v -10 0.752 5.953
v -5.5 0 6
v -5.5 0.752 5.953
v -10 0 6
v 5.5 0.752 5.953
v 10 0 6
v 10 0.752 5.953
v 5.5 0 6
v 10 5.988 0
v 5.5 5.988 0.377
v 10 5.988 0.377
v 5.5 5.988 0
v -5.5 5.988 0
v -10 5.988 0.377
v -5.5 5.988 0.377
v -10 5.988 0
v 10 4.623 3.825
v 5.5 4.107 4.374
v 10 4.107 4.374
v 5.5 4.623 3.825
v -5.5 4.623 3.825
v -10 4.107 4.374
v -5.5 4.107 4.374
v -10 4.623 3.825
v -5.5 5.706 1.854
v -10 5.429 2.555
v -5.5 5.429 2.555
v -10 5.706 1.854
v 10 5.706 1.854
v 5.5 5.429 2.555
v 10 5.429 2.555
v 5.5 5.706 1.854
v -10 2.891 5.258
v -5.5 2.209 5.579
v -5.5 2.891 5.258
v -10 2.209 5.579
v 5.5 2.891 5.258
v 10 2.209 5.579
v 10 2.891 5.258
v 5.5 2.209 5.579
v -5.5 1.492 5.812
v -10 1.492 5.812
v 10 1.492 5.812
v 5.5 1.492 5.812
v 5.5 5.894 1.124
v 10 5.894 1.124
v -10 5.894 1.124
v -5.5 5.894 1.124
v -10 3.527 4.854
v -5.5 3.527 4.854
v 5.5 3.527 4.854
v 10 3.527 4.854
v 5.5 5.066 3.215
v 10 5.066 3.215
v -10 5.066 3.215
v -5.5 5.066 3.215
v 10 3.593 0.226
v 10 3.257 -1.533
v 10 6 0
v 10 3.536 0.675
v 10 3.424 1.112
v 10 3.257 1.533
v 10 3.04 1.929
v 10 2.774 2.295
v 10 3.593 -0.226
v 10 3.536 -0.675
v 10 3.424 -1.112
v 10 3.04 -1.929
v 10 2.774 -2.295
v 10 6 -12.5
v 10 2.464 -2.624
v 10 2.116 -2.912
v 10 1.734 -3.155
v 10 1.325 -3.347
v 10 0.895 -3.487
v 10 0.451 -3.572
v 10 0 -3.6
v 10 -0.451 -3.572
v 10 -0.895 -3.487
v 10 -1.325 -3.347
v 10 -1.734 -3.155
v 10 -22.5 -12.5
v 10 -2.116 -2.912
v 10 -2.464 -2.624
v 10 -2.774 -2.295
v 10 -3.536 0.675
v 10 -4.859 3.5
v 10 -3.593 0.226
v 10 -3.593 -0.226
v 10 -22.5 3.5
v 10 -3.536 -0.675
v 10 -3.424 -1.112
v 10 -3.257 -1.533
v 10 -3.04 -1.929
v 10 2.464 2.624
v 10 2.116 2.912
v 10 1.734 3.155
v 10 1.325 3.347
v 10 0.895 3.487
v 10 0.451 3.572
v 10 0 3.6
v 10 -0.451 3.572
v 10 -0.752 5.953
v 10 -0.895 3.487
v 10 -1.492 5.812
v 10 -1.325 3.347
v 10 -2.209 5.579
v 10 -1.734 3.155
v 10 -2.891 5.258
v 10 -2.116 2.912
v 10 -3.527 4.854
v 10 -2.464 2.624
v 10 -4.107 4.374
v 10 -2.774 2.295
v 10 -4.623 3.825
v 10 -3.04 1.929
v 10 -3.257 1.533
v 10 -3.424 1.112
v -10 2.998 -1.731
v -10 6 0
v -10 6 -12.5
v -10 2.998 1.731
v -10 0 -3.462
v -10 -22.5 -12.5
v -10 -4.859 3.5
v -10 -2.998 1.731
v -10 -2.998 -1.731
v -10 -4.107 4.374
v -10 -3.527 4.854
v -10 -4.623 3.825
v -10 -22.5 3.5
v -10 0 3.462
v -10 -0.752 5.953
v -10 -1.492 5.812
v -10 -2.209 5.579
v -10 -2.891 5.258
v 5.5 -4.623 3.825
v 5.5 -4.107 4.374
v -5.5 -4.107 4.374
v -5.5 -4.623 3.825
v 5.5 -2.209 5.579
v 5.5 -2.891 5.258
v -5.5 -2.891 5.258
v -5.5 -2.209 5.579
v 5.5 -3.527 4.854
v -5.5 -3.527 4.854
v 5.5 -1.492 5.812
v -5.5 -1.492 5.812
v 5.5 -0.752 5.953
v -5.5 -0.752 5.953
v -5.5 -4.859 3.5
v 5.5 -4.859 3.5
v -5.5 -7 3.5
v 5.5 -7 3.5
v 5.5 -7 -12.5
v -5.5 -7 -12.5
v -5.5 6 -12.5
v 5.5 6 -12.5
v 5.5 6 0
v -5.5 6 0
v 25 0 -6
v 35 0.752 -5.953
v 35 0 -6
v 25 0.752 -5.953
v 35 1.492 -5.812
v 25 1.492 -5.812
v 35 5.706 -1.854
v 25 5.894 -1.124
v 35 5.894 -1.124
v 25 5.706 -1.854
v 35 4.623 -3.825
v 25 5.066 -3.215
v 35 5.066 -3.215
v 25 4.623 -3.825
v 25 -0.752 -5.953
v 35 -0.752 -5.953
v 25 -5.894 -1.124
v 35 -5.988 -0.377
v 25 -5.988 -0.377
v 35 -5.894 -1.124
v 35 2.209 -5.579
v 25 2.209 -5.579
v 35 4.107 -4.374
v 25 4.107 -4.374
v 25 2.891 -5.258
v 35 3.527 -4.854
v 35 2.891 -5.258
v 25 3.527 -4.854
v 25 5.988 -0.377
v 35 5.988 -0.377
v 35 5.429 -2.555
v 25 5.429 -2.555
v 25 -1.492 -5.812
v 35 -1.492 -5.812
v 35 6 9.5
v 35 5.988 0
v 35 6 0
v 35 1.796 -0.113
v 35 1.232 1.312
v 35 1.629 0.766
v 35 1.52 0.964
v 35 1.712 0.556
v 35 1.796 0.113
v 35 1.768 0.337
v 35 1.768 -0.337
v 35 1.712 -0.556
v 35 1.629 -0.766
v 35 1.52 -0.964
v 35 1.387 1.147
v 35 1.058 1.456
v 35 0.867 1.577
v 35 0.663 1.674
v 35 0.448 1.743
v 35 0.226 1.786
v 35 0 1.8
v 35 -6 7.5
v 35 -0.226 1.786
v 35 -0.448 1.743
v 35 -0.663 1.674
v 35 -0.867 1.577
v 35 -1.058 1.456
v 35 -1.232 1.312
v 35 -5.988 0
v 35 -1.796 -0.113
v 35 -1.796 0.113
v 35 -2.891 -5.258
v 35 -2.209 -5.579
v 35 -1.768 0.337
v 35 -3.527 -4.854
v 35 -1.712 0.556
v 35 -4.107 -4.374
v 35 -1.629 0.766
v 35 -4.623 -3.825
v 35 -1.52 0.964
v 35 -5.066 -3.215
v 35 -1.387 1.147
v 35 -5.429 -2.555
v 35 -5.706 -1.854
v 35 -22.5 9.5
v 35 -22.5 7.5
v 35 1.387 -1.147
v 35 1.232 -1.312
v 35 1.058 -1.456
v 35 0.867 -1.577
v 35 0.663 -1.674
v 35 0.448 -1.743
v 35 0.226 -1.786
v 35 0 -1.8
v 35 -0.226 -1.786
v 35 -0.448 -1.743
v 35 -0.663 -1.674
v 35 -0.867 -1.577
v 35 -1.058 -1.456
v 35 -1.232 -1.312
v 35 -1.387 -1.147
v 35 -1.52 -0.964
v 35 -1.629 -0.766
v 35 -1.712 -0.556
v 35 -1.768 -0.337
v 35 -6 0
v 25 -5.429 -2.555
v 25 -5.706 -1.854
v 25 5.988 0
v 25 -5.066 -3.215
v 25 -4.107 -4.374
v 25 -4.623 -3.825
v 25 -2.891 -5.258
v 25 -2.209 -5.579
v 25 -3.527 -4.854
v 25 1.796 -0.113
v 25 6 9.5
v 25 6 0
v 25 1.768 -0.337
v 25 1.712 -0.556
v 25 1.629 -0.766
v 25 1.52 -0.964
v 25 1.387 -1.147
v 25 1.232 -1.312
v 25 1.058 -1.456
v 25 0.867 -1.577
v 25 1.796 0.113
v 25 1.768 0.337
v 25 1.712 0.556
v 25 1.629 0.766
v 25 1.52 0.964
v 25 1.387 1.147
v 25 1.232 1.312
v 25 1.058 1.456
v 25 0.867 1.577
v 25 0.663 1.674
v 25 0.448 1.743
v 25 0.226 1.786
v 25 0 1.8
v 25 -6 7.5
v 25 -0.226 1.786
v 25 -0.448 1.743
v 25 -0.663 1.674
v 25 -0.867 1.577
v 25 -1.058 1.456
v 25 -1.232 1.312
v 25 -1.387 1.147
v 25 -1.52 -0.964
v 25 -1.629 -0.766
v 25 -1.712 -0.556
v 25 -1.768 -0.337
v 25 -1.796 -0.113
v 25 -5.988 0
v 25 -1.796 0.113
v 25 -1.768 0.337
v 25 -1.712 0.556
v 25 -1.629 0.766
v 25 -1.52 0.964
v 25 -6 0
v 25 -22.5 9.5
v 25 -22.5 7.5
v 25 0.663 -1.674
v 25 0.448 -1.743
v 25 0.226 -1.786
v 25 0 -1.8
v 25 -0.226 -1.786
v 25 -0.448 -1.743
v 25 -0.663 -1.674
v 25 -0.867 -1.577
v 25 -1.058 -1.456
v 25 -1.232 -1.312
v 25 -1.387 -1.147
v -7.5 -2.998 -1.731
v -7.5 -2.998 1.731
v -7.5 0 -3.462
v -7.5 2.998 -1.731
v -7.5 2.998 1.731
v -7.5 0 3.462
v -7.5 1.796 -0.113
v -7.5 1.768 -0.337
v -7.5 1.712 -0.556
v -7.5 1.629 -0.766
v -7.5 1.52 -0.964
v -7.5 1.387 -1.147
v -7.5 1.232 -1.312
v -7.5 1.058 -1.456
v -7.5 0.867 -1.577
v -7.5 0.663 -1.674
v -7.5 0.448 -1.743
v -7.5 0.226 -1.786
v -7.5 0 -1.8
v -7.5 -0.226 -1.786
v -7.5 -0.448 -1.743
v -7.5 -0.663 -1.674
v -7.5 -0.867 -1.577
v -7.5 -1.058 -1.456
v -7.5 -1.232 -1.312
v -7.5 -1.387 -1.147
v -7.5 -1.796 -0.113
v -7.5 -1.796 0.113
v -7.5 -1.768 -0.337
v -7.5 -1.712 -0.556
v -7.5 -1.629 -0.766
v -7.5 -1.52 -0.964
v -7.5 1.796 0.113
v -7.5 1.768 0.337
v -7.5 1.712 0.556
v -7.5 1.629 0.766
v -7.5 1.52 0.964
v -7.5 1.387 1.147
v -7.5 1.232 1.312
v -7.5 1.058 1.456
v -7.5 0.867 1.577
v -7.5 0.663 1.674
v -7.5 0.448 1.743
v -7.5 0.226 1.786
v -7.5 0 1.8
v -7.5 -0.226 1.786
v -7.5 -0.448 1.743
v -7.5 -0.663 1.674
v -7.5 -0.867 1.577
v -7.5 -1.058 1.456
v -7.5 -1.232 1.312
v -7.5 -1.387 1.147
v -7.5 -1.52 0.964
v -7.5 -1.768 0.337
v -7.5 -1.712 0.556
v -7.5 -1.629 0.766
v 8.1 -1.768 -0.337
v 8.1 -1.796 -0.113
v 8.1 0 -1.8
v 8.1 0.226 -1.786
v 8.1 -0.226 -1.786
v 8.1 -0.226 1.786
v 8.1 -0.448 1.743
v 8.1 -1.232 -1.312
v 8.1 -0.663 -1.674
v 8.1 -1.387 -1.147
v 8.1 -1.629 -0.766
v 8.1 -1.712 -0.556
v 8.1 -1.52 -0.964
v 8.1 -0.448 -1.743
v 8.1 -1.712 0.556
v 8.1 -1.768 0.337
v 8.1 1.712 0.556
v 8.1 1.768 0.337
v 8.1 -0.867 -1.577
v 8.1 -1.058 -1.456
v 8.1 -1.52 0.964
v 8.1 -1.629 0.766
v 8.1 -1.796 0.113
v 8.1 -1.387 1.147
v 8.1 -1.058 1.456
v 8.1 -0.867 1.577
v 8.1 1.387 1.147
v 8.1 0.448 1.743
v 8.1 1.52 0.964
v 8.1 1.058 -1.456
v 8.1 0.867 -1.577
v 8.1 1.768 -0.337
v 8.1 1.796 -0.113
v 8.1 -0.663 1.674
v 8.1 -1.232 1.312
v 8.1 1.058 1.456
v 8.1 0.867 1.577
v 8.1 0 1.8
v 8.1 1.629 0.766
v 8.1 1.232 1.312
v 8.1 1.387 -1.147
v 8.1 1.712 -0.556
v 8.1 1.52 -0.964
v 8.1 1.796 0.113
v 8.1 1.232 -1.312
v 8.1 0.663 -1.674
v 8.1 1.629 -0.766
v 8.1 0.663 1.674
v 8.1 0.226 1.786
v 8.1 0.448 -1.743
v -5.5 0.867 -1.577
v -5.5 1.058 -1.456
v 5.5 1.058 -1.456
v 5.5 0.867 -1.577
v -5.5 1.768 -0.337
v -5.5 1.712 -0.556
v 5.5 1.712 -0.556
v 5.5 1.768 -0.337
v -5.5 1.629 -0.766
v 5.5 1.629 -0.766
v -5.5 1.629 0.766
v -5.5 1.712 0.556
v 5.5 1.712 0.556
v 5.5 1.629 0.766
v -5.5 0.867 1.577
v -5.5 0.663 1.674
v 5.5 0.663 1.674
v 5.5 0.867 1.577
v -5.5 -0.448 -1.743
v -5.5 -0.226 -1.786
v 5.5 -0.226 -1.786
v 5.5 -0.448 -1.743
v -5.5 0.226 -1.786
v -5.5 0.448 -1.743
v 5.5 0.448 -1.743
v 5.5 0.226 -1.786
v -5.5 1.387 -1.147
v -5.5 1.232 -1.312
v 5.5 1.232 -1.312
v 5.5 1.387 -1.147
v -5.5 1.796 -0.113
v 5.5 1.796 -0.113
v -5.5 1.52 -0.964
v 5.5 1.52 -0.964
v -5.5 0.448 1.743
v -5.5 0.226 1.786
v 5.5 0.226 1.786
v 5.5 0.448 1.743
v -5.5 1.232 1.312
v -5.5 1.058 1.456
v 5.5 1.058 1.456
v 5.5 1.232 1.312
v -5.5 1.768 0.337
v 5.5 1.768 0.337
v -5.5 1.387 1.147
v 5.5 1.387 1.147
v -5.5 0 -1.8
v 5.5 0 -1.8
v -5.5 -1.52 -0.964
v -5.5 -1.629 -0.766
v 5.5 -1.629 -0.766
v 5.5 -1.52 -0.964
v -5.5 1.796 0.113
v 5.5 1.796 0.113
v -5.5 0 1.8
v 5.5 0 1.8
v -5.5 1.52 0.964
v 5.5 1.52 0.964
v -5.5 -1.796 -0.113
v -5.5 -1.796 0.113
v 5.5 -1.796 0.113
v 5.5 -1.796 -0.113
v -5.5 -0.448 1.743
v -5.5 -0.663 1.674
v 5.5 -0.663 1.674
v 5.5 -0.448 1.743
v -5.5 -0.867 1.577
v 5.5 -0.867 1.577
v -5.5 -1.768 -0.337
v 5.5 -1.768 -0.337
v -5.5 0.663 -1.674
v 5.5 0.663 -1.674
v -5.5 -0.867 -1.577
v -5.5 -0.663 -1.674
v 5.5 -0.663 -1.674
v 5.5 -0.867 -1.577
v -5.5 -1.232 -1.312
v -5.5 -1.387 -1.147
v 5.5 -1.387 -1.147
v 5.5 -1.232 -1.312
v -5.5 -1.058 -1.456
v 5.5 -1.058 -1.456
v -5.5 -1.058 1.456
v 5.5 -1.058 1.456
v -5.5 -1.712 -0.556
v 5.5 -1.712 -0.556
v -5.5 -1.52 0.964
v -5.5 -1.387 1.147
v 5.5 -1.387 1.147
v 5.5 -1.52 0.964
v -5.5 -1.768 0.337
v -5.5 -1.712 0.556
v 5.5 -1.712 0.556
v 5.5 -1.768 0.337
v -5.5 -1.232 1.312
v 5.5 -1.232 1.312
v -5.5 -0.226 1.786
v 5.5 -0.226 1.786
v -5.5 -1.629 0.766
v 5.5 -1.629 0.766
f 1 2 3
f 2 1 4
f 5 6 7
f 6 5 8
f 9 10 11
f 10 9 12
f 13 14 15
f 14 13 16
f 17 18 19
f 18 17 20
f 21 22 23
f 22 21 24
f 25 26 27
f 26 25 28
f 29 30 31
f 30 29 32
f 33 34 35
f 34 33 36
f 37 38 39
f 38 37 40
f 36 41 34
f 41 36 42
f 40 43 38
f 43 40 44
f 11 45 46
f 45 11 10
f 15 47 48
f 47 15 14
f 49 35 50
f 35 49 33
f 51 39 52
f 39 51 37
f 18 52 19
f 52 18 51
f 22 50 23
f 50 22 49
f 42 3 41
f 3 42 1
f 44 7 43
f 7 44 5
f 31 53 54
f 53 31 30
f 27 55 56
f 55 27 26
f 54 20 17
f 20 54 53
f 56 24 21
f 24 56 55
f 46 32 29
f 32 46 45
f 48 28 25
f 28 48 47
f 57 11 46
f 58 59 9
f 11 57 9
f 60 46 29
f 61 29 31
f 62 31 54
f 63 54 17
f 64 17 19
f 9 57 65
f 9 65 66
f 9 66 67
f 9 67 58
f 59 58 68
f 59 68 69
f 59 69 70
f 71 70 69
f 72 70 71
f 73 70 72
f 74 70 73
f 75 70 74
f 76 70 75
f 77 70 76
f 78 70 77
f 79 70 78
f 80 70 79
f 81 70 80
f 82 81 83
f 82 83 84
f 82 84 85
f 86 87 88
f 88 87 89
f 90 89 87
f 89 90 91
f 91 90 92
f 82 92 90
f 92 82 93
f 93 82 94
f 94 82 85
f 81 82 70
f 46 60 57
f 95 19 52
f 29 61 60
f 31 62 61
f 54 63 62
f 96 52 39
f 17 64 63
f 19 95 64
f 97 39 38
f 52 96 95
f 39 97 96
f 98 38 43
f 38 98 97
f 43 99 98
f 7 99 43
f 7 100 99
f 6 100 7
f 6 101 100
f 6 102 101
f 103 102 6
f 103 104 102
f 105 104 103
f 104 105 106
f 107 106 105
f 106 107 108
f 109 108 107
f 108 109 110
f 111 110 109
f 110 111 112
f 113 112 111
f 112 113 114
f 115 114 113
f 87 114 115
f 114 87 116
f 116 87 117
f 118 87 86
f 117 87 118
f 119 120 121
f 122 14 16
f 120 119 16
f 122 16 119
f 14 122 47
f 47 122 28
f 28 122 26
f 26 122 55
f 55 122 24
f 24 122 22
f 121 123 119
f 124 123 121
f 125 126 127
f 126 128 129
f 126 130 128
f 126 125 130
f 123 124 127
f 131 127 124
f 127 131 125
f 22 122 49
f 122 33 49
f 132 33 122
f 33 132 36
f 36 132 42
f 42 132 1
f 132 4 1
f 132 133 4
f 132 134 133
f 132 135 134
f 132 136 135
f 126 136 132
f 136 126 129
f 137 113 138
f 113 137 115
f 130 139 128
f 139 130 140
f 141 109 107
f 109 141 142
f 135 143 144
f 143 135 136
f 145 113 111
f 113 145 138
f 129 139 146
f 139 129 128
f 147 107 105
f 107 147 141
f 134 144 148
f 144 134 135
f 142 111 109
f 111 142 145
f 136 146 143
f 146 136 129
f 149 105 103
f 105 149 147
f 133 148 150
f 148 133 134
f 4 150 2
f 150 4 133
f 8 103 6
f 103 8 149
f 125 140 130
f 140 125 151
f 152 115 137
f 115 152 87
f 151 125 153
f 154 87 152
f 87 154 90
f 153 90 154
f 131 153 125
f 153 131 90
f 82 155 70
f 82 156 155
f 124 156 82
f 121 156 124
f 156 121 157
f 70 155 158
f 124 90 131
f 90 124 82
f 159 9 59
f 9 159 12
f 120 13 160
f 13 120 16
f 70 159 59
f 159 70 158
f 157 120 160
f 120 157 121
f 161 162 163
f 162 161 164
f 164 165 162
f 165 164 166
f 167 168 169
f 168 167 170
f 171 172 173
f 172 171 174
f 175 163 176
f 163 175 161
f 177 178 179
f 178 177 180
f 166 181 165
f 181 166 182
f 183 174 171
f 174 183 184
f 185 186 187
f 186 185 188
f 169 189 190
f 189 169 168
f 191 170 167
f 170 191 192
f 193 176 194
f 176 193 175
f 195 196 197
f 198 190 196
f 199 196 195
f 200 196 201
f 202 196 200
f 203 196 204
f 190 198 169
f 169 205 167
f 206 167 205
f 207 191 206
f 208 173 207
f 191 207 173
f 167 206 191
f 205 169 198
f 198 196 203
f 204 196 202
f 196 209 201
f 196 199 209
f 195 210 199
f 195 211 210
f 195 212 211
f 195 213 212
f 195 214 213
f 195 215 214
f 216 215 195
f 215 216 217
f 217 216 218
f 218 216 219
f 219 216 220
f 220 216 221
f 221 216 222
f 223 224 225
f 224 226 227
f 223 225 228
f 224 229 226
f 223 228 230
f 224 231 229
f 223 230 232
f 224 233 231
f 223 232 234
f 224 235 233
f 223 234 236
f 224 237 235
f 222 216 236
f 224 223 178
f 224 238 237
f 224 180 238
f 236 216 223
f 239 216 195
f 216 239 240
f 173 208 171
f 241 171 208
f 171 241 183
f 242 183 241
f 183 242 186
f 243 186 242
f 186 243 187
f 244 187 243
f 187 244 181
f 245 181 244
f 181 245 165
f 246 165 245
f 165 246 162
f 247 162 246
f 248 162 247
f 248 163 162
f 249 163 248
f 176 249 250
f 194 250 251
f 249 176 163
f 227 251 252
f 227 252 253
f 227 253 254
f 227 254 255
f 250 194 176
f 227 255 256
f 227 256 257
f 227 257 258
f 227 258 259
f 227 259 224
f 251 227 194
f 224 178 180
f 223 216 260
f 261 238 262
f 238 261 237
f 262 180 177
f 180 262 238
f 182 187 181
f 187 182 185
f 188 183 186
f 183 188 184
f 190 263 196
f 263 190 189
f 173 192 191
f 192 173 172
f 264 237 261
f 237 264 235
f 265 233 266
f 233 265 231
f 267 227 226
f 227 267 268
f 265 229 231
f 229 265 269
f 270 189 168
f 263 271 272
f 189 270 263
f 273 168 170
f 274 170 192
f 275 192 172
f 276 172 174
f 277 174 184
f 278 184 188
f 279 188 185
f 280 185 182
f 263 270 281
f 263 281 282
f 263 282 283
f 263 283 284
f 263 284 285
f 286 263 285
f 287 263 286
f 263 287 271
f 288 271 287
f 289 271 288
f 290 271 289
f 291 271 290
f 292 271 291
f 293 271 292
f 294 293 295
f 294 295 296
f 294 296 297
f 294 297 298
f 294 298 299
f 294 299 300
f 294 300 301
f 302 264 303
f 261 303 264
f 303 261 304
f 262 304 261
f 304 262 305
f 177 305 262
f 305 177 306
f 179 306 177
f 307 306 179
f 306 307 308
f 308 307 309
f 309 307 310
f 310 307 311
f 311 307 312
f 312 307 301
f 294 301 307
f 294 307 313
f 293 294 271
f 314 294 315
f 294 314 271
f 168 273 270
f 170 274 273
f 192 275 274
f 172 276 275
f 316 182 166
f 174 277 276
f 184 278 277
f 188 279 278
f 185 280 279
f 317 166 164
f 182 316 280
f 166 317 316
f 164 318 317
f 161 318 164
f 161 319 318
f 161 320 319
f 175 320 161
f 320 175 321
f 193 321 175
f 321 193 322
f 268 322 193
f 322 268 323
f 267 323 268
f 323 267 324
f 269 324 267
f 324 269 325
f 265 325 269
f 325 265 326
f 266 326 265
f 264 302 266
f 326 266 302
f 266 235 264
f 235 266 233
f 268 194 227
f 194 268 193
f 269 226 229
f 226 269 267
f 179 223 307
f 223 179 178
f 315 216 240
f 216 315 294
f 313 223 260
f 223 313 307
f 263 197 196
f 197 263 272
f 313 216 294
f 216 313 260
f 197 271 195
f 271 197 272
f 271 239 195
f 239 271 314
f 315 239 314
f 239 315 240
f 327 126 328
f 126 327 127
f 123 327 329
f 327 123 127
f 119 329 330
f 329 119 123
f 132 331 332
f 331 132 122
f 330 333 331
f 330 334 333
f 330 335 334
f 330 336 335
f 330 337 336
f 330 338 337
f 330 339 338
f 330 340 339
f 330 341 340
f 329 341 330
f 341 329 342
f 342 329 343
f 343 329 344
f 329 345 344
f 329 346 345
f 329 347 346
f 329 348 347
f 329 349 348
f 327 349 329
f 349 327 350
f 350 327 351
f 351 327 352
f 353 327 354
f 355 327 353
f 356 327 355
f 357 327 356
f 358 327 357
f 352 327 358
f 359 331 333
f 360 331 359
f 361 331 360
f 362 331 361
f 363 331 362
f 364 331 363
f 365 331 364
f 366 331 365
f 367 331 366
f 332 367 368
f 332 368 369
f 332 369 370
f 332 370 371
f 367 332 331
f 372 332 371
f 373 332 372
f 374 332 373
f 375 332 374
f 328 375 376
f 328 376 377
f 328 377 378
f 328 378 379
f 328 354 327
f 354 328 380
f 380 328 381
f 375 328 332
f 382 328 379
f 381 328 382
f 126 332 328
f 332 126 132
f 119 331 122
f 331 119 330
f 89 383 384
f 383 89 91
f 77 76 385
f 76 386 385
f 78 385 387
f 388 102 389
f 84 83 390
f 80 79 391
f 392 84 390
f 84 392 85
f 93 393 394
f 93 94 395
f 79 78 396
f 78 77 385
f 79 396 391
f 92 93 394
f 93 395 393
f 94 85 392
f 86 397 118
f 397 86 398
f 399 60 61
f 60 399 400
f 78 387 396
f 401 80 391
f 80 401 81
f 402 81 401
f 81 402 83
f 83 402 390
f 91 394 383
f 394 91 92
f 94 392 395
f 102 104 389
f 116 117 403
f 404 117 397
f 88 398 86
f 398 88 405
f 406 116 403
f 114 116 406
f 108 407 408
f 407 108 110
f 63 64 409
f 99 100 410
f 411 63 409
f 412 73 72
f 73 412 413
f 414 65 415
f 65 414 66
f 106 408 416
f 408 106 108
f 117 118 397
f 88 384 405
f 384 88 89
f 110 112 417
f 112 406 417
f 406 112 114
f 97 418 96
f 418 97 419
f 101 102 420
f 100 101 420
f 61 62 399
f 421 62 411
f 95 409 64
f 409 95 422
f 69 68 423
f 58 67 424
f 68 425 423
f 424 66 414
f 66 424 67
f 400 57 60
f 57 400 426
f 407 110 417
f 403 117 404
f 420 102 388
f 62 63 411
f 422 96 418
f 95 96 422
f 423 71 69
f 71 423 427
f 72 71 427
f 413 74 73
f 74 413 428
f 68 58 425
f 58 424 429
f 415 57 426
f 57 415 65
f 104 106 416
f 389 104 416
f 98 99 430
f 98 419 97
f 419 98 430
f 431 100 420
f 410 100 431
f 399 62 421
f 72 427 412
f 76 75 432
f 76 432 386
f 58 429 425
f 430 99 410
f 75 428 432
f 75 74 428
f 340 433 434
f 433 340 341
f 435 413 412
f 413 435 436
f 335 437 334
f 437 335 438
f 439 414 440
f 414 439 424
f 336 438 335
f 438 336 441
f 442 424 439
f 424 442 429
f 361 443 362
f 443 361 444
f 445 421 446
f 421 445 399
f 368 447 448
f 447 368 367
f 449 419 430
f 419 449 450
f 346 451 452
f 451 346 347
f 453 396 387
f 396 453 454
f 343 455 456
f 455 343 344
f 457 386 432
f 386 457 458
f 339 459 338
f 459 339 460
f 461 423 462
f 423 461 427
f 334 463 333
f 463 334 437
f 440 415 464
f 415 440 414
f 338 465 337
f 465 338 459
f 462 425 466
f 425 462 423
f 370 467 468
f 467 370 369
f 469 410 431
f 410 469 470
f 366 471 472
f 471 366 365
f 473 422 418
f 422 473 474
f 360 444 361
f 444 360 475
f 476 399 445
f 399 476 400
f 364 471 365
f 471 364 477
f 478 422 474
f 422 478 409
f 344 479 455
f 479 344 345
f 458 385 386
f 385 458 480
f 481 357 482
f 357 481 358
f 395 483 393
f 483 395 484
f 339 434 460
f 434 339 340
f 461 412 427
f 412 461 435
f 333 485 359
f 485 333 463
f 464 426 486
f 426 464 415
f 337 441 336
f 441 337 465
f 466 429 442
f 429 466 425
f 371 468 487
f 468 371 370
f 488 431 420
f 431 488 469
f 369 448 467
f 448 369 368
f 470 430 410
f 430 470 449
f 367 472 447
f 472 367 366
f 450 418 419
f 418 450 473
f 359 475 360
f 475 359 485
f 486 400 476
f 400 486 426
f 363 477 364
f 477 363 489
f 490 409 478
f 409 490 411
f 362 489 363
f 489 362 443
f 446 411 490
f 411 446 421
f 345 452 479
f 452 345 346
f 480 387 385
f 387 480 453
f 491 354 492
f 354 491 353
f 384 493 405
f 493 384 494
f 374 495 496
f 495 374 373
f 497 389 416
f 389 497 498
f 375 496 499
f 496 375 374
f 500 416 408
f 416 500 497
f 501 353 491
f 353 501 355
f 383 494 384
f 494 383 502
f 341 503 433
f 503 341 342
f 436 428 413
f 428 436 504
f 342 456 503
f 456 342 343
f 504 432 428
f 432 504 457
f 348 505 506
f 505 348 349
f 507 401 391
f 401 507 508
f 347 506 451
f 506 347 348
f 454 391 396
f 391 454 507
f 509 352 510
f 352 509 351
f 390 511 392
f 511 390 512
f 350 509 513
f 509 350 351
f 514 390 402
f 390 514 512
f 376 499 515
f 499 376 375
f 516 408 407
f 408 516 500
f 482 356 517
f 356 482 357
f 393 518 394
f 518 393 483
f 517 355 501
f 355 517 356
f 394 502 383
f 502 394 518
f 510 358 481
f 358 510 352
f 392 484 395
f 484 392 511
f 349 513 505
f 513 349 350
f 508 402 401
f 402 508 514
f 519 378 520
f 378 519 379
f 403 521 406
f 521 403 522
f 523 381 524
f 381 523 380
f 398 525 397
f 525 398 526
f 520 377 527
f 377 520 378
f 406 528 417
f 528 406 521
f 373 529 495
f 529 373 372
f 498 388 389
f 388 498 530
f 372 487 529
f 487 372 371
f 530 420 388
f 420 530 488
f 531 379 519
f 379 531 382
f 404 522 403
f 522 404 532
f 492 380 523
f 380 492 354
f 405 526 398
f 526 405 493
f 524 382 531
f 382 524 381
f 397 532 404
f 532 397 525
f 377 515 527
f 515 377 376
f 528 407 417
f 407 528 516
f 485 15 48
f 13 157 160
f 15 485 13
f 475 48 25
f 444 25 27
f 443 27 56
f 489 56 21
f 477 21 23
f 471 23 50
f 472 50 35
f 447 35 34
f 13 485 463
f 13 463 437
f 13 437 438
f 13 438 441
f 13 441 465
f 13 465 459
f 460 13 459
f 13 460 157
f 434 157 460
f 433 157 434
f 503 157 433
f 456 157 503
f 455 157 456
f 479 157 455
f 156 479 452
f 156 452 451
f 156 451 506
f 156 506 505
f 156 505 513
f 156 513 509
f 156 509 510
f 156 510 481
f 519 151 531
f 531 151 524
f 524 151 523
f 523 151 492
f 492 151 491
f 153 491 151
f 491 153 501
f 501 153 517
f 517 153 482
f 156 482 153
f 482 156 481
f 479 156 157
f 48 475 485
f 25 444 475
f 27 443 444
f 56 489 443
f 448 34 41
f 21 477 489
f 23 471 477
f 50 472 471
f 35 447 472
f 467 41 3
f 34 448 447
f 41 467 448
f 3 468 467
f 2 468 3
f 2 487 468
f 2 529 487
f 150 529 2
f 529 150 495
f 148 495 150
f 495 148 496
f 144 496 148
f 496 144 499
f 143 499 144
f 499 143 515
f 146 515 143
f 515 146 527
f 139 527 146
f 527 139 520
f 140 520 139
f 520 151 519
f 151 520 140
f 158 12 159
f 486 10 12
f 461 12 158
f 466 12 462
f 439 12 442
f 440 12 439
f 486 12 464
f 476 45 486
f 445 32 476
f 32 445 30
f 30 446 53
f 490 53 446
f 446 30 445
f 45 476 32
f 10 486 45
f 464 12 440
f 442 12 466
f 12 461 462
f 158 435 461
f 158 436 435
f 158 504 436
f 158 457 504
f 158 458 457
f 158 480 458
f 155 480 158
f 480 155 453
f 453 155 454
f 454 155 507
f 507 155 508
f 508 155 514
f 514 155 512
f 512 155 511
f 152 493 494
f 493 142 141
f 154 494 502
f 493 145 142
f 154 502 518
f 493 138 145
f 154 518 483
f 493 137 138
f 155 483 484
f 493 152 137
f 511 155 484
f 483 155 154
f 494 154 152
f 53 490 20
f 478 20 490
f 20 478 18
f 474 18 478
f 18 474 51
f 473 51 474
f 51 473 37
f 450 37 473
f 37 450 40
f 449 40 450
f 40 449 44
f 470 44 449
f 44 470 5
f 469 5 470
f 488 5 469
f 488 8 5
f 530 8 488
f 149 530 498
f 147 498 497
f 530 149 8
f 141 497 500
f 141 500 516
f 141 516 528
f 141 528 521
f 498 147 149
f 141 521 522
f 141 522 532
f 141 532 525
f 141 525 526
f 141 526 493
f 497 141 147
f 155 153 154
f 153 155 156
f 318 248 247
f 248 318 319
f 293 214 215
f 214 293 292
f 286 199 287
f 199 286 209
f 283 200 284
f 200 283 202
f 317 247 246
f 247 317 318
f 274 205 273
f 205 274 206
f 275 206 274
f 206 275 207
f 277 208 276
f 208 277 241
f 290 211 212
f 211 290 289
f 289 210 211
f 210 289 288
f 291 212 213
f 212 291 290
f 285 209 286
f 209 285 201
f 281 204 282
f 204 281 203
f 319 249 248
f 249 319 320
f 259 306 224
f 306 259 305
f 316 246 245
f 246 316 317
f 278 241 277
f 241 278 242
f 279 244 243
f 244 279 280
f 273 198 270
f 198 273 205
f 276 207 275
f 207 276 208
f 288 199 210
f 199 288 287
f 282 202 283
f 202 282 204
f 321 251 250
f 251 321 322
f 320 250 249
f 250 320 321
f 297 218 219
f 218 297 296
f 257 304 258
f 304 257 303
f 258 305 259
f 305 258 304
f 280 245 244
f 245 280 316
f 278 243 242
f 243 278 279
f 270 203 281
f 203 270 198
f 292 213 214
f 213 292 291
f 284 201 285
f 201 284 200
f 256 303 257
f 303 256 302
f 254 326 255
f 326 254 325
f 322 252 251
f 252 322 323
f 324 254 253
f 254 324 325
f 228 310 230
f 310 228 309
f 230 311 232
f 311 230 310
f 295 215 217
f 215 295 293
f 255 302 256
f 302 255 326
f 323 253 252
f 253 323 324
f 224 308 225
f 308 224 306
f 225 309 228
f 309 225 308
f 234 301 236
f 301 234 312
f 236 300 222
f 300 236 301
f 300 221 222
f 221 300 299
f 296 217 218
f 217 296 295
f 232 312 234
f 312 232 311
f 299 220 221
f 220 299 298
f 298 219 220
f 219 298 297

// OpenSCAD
$fn = 50;


difference() {
	union() {
		translate(v = [-10.0000000000, 0, 0.0000000000]) {
			rotate(a = [0, 90, 0]) {
				cylinder(h = 20, r = 6.0000000000);
			}
		}
		translate(v = [-10.0000000000, -22.5000000000, -12.5000000000]) {
			cube(size = [20, 22.5000000000, 16]);
		}
		translate(v = [-10.0000000000, -21.0000000000, -12.5000000000]) {
			cube(size = [20, 27, 12.5000000000]);
		}
		translate(v = [25.0000000000, 0, 0.0000000000]) {
			rotate(a = [0, 90, 0]) {
				cylinder(h = 10, r = 6.0000000000);
			}
		}
		translate(v = [25.0000000000, -6.0000000000, 0]) {
			cube(size = [10, 12, 7.5000000000]);
		}
		translate(v = [25.0000000000, -22.5000000000, 7.5000000000]) {
			cube(size = [10, 28.5000000000, 2]);
		}
	}
	union() {
		translate(v = [10.0000000000, 0, 0]) {
			rotate(a = [0, 90, 0]) {
				difference() {
					union() {
						translate(v = [0, 0, -20.0000000000]) {
							rotate(a = [0, 0, 0]) {
								difference() {
									union() {
										linear_extrude(height = 2.5000000000) {
											polygon(points = [[3.4620000000, 0.0000000000], [1.7310000000, 2.9981799479], [-1.7310000000, 2.9981799479], [-3.4620000000, 0.0000000000], [-1.7310000000, -2.9981799479], [1.7310000000, -2.9981799479]]);
										}
									}
									union();
								}
							}
						}
						translate(v = [0, 0, -20.0000000000]) {
							rotate(a = [0, 0, 0]) {
								difference() {
									union() {
										linear_extrude(height = 2.5000000000) {
											polygon(points = [[3.4620000000, 0.0000000000], [1.7310000000, 2.9981799479], [-1.7310000000, 2.9981799479], [-3.4620000000, 0.0000000000], [-1.7310000000, -2.9981799479], [1.7310000000, -2.9981799479]]);
										}
									}
									union();
								}
							}
						}
						translate(v = [0, 0, -20.0000000000]) {
							rotate(a = [0, 0, 0]) {
								difference() {
									union() {
										linear_extrude(height = 2.5000000000) {
											polygon(points = [[3.4620000000, 0.0000000000], [1.7310000000, 2.9981799479], [-1.7310000000, 2.9981799479], [-3.4620000000, 0.0000000000], [-1.7310000000, -2.9981799479], [1.7310000000, -2.9981799479]]);
										}
									}
									union();
								}
							}
						}
						translate(v = [0, 0, -20.0000000000]) {
							cylinder(h = 20, r = 1.5000000000);
						}
						translate(v = [0, 0, -1.9000000000]) {
							cylinder(h = 1.9000000000, r1 = 1.8000000000, r2 = 3.6000000000);
						}
						translate(v = [0, 0, -20.0000000000]) {
							cylinder(h = 20, r = 1.8000000000);
						}
						translate(v = [0, 0, -20.0000000000]) {
							cylinder(h = 20, r = 1.5000000000);
						}
					}
					union();
				}
			}
		}
		translate(v = [-5.5000000000, -7.0000000000, -12.5000000000]) {
			cube(size = [11, 17, 20]);
		}
		translate(v = [25.0000000000, 0, 0]) {
			rotate(a = [0, 90, 0]) {
				cylinder(h = 10, r = 1.8000000000);
			}
		}
	}
}
